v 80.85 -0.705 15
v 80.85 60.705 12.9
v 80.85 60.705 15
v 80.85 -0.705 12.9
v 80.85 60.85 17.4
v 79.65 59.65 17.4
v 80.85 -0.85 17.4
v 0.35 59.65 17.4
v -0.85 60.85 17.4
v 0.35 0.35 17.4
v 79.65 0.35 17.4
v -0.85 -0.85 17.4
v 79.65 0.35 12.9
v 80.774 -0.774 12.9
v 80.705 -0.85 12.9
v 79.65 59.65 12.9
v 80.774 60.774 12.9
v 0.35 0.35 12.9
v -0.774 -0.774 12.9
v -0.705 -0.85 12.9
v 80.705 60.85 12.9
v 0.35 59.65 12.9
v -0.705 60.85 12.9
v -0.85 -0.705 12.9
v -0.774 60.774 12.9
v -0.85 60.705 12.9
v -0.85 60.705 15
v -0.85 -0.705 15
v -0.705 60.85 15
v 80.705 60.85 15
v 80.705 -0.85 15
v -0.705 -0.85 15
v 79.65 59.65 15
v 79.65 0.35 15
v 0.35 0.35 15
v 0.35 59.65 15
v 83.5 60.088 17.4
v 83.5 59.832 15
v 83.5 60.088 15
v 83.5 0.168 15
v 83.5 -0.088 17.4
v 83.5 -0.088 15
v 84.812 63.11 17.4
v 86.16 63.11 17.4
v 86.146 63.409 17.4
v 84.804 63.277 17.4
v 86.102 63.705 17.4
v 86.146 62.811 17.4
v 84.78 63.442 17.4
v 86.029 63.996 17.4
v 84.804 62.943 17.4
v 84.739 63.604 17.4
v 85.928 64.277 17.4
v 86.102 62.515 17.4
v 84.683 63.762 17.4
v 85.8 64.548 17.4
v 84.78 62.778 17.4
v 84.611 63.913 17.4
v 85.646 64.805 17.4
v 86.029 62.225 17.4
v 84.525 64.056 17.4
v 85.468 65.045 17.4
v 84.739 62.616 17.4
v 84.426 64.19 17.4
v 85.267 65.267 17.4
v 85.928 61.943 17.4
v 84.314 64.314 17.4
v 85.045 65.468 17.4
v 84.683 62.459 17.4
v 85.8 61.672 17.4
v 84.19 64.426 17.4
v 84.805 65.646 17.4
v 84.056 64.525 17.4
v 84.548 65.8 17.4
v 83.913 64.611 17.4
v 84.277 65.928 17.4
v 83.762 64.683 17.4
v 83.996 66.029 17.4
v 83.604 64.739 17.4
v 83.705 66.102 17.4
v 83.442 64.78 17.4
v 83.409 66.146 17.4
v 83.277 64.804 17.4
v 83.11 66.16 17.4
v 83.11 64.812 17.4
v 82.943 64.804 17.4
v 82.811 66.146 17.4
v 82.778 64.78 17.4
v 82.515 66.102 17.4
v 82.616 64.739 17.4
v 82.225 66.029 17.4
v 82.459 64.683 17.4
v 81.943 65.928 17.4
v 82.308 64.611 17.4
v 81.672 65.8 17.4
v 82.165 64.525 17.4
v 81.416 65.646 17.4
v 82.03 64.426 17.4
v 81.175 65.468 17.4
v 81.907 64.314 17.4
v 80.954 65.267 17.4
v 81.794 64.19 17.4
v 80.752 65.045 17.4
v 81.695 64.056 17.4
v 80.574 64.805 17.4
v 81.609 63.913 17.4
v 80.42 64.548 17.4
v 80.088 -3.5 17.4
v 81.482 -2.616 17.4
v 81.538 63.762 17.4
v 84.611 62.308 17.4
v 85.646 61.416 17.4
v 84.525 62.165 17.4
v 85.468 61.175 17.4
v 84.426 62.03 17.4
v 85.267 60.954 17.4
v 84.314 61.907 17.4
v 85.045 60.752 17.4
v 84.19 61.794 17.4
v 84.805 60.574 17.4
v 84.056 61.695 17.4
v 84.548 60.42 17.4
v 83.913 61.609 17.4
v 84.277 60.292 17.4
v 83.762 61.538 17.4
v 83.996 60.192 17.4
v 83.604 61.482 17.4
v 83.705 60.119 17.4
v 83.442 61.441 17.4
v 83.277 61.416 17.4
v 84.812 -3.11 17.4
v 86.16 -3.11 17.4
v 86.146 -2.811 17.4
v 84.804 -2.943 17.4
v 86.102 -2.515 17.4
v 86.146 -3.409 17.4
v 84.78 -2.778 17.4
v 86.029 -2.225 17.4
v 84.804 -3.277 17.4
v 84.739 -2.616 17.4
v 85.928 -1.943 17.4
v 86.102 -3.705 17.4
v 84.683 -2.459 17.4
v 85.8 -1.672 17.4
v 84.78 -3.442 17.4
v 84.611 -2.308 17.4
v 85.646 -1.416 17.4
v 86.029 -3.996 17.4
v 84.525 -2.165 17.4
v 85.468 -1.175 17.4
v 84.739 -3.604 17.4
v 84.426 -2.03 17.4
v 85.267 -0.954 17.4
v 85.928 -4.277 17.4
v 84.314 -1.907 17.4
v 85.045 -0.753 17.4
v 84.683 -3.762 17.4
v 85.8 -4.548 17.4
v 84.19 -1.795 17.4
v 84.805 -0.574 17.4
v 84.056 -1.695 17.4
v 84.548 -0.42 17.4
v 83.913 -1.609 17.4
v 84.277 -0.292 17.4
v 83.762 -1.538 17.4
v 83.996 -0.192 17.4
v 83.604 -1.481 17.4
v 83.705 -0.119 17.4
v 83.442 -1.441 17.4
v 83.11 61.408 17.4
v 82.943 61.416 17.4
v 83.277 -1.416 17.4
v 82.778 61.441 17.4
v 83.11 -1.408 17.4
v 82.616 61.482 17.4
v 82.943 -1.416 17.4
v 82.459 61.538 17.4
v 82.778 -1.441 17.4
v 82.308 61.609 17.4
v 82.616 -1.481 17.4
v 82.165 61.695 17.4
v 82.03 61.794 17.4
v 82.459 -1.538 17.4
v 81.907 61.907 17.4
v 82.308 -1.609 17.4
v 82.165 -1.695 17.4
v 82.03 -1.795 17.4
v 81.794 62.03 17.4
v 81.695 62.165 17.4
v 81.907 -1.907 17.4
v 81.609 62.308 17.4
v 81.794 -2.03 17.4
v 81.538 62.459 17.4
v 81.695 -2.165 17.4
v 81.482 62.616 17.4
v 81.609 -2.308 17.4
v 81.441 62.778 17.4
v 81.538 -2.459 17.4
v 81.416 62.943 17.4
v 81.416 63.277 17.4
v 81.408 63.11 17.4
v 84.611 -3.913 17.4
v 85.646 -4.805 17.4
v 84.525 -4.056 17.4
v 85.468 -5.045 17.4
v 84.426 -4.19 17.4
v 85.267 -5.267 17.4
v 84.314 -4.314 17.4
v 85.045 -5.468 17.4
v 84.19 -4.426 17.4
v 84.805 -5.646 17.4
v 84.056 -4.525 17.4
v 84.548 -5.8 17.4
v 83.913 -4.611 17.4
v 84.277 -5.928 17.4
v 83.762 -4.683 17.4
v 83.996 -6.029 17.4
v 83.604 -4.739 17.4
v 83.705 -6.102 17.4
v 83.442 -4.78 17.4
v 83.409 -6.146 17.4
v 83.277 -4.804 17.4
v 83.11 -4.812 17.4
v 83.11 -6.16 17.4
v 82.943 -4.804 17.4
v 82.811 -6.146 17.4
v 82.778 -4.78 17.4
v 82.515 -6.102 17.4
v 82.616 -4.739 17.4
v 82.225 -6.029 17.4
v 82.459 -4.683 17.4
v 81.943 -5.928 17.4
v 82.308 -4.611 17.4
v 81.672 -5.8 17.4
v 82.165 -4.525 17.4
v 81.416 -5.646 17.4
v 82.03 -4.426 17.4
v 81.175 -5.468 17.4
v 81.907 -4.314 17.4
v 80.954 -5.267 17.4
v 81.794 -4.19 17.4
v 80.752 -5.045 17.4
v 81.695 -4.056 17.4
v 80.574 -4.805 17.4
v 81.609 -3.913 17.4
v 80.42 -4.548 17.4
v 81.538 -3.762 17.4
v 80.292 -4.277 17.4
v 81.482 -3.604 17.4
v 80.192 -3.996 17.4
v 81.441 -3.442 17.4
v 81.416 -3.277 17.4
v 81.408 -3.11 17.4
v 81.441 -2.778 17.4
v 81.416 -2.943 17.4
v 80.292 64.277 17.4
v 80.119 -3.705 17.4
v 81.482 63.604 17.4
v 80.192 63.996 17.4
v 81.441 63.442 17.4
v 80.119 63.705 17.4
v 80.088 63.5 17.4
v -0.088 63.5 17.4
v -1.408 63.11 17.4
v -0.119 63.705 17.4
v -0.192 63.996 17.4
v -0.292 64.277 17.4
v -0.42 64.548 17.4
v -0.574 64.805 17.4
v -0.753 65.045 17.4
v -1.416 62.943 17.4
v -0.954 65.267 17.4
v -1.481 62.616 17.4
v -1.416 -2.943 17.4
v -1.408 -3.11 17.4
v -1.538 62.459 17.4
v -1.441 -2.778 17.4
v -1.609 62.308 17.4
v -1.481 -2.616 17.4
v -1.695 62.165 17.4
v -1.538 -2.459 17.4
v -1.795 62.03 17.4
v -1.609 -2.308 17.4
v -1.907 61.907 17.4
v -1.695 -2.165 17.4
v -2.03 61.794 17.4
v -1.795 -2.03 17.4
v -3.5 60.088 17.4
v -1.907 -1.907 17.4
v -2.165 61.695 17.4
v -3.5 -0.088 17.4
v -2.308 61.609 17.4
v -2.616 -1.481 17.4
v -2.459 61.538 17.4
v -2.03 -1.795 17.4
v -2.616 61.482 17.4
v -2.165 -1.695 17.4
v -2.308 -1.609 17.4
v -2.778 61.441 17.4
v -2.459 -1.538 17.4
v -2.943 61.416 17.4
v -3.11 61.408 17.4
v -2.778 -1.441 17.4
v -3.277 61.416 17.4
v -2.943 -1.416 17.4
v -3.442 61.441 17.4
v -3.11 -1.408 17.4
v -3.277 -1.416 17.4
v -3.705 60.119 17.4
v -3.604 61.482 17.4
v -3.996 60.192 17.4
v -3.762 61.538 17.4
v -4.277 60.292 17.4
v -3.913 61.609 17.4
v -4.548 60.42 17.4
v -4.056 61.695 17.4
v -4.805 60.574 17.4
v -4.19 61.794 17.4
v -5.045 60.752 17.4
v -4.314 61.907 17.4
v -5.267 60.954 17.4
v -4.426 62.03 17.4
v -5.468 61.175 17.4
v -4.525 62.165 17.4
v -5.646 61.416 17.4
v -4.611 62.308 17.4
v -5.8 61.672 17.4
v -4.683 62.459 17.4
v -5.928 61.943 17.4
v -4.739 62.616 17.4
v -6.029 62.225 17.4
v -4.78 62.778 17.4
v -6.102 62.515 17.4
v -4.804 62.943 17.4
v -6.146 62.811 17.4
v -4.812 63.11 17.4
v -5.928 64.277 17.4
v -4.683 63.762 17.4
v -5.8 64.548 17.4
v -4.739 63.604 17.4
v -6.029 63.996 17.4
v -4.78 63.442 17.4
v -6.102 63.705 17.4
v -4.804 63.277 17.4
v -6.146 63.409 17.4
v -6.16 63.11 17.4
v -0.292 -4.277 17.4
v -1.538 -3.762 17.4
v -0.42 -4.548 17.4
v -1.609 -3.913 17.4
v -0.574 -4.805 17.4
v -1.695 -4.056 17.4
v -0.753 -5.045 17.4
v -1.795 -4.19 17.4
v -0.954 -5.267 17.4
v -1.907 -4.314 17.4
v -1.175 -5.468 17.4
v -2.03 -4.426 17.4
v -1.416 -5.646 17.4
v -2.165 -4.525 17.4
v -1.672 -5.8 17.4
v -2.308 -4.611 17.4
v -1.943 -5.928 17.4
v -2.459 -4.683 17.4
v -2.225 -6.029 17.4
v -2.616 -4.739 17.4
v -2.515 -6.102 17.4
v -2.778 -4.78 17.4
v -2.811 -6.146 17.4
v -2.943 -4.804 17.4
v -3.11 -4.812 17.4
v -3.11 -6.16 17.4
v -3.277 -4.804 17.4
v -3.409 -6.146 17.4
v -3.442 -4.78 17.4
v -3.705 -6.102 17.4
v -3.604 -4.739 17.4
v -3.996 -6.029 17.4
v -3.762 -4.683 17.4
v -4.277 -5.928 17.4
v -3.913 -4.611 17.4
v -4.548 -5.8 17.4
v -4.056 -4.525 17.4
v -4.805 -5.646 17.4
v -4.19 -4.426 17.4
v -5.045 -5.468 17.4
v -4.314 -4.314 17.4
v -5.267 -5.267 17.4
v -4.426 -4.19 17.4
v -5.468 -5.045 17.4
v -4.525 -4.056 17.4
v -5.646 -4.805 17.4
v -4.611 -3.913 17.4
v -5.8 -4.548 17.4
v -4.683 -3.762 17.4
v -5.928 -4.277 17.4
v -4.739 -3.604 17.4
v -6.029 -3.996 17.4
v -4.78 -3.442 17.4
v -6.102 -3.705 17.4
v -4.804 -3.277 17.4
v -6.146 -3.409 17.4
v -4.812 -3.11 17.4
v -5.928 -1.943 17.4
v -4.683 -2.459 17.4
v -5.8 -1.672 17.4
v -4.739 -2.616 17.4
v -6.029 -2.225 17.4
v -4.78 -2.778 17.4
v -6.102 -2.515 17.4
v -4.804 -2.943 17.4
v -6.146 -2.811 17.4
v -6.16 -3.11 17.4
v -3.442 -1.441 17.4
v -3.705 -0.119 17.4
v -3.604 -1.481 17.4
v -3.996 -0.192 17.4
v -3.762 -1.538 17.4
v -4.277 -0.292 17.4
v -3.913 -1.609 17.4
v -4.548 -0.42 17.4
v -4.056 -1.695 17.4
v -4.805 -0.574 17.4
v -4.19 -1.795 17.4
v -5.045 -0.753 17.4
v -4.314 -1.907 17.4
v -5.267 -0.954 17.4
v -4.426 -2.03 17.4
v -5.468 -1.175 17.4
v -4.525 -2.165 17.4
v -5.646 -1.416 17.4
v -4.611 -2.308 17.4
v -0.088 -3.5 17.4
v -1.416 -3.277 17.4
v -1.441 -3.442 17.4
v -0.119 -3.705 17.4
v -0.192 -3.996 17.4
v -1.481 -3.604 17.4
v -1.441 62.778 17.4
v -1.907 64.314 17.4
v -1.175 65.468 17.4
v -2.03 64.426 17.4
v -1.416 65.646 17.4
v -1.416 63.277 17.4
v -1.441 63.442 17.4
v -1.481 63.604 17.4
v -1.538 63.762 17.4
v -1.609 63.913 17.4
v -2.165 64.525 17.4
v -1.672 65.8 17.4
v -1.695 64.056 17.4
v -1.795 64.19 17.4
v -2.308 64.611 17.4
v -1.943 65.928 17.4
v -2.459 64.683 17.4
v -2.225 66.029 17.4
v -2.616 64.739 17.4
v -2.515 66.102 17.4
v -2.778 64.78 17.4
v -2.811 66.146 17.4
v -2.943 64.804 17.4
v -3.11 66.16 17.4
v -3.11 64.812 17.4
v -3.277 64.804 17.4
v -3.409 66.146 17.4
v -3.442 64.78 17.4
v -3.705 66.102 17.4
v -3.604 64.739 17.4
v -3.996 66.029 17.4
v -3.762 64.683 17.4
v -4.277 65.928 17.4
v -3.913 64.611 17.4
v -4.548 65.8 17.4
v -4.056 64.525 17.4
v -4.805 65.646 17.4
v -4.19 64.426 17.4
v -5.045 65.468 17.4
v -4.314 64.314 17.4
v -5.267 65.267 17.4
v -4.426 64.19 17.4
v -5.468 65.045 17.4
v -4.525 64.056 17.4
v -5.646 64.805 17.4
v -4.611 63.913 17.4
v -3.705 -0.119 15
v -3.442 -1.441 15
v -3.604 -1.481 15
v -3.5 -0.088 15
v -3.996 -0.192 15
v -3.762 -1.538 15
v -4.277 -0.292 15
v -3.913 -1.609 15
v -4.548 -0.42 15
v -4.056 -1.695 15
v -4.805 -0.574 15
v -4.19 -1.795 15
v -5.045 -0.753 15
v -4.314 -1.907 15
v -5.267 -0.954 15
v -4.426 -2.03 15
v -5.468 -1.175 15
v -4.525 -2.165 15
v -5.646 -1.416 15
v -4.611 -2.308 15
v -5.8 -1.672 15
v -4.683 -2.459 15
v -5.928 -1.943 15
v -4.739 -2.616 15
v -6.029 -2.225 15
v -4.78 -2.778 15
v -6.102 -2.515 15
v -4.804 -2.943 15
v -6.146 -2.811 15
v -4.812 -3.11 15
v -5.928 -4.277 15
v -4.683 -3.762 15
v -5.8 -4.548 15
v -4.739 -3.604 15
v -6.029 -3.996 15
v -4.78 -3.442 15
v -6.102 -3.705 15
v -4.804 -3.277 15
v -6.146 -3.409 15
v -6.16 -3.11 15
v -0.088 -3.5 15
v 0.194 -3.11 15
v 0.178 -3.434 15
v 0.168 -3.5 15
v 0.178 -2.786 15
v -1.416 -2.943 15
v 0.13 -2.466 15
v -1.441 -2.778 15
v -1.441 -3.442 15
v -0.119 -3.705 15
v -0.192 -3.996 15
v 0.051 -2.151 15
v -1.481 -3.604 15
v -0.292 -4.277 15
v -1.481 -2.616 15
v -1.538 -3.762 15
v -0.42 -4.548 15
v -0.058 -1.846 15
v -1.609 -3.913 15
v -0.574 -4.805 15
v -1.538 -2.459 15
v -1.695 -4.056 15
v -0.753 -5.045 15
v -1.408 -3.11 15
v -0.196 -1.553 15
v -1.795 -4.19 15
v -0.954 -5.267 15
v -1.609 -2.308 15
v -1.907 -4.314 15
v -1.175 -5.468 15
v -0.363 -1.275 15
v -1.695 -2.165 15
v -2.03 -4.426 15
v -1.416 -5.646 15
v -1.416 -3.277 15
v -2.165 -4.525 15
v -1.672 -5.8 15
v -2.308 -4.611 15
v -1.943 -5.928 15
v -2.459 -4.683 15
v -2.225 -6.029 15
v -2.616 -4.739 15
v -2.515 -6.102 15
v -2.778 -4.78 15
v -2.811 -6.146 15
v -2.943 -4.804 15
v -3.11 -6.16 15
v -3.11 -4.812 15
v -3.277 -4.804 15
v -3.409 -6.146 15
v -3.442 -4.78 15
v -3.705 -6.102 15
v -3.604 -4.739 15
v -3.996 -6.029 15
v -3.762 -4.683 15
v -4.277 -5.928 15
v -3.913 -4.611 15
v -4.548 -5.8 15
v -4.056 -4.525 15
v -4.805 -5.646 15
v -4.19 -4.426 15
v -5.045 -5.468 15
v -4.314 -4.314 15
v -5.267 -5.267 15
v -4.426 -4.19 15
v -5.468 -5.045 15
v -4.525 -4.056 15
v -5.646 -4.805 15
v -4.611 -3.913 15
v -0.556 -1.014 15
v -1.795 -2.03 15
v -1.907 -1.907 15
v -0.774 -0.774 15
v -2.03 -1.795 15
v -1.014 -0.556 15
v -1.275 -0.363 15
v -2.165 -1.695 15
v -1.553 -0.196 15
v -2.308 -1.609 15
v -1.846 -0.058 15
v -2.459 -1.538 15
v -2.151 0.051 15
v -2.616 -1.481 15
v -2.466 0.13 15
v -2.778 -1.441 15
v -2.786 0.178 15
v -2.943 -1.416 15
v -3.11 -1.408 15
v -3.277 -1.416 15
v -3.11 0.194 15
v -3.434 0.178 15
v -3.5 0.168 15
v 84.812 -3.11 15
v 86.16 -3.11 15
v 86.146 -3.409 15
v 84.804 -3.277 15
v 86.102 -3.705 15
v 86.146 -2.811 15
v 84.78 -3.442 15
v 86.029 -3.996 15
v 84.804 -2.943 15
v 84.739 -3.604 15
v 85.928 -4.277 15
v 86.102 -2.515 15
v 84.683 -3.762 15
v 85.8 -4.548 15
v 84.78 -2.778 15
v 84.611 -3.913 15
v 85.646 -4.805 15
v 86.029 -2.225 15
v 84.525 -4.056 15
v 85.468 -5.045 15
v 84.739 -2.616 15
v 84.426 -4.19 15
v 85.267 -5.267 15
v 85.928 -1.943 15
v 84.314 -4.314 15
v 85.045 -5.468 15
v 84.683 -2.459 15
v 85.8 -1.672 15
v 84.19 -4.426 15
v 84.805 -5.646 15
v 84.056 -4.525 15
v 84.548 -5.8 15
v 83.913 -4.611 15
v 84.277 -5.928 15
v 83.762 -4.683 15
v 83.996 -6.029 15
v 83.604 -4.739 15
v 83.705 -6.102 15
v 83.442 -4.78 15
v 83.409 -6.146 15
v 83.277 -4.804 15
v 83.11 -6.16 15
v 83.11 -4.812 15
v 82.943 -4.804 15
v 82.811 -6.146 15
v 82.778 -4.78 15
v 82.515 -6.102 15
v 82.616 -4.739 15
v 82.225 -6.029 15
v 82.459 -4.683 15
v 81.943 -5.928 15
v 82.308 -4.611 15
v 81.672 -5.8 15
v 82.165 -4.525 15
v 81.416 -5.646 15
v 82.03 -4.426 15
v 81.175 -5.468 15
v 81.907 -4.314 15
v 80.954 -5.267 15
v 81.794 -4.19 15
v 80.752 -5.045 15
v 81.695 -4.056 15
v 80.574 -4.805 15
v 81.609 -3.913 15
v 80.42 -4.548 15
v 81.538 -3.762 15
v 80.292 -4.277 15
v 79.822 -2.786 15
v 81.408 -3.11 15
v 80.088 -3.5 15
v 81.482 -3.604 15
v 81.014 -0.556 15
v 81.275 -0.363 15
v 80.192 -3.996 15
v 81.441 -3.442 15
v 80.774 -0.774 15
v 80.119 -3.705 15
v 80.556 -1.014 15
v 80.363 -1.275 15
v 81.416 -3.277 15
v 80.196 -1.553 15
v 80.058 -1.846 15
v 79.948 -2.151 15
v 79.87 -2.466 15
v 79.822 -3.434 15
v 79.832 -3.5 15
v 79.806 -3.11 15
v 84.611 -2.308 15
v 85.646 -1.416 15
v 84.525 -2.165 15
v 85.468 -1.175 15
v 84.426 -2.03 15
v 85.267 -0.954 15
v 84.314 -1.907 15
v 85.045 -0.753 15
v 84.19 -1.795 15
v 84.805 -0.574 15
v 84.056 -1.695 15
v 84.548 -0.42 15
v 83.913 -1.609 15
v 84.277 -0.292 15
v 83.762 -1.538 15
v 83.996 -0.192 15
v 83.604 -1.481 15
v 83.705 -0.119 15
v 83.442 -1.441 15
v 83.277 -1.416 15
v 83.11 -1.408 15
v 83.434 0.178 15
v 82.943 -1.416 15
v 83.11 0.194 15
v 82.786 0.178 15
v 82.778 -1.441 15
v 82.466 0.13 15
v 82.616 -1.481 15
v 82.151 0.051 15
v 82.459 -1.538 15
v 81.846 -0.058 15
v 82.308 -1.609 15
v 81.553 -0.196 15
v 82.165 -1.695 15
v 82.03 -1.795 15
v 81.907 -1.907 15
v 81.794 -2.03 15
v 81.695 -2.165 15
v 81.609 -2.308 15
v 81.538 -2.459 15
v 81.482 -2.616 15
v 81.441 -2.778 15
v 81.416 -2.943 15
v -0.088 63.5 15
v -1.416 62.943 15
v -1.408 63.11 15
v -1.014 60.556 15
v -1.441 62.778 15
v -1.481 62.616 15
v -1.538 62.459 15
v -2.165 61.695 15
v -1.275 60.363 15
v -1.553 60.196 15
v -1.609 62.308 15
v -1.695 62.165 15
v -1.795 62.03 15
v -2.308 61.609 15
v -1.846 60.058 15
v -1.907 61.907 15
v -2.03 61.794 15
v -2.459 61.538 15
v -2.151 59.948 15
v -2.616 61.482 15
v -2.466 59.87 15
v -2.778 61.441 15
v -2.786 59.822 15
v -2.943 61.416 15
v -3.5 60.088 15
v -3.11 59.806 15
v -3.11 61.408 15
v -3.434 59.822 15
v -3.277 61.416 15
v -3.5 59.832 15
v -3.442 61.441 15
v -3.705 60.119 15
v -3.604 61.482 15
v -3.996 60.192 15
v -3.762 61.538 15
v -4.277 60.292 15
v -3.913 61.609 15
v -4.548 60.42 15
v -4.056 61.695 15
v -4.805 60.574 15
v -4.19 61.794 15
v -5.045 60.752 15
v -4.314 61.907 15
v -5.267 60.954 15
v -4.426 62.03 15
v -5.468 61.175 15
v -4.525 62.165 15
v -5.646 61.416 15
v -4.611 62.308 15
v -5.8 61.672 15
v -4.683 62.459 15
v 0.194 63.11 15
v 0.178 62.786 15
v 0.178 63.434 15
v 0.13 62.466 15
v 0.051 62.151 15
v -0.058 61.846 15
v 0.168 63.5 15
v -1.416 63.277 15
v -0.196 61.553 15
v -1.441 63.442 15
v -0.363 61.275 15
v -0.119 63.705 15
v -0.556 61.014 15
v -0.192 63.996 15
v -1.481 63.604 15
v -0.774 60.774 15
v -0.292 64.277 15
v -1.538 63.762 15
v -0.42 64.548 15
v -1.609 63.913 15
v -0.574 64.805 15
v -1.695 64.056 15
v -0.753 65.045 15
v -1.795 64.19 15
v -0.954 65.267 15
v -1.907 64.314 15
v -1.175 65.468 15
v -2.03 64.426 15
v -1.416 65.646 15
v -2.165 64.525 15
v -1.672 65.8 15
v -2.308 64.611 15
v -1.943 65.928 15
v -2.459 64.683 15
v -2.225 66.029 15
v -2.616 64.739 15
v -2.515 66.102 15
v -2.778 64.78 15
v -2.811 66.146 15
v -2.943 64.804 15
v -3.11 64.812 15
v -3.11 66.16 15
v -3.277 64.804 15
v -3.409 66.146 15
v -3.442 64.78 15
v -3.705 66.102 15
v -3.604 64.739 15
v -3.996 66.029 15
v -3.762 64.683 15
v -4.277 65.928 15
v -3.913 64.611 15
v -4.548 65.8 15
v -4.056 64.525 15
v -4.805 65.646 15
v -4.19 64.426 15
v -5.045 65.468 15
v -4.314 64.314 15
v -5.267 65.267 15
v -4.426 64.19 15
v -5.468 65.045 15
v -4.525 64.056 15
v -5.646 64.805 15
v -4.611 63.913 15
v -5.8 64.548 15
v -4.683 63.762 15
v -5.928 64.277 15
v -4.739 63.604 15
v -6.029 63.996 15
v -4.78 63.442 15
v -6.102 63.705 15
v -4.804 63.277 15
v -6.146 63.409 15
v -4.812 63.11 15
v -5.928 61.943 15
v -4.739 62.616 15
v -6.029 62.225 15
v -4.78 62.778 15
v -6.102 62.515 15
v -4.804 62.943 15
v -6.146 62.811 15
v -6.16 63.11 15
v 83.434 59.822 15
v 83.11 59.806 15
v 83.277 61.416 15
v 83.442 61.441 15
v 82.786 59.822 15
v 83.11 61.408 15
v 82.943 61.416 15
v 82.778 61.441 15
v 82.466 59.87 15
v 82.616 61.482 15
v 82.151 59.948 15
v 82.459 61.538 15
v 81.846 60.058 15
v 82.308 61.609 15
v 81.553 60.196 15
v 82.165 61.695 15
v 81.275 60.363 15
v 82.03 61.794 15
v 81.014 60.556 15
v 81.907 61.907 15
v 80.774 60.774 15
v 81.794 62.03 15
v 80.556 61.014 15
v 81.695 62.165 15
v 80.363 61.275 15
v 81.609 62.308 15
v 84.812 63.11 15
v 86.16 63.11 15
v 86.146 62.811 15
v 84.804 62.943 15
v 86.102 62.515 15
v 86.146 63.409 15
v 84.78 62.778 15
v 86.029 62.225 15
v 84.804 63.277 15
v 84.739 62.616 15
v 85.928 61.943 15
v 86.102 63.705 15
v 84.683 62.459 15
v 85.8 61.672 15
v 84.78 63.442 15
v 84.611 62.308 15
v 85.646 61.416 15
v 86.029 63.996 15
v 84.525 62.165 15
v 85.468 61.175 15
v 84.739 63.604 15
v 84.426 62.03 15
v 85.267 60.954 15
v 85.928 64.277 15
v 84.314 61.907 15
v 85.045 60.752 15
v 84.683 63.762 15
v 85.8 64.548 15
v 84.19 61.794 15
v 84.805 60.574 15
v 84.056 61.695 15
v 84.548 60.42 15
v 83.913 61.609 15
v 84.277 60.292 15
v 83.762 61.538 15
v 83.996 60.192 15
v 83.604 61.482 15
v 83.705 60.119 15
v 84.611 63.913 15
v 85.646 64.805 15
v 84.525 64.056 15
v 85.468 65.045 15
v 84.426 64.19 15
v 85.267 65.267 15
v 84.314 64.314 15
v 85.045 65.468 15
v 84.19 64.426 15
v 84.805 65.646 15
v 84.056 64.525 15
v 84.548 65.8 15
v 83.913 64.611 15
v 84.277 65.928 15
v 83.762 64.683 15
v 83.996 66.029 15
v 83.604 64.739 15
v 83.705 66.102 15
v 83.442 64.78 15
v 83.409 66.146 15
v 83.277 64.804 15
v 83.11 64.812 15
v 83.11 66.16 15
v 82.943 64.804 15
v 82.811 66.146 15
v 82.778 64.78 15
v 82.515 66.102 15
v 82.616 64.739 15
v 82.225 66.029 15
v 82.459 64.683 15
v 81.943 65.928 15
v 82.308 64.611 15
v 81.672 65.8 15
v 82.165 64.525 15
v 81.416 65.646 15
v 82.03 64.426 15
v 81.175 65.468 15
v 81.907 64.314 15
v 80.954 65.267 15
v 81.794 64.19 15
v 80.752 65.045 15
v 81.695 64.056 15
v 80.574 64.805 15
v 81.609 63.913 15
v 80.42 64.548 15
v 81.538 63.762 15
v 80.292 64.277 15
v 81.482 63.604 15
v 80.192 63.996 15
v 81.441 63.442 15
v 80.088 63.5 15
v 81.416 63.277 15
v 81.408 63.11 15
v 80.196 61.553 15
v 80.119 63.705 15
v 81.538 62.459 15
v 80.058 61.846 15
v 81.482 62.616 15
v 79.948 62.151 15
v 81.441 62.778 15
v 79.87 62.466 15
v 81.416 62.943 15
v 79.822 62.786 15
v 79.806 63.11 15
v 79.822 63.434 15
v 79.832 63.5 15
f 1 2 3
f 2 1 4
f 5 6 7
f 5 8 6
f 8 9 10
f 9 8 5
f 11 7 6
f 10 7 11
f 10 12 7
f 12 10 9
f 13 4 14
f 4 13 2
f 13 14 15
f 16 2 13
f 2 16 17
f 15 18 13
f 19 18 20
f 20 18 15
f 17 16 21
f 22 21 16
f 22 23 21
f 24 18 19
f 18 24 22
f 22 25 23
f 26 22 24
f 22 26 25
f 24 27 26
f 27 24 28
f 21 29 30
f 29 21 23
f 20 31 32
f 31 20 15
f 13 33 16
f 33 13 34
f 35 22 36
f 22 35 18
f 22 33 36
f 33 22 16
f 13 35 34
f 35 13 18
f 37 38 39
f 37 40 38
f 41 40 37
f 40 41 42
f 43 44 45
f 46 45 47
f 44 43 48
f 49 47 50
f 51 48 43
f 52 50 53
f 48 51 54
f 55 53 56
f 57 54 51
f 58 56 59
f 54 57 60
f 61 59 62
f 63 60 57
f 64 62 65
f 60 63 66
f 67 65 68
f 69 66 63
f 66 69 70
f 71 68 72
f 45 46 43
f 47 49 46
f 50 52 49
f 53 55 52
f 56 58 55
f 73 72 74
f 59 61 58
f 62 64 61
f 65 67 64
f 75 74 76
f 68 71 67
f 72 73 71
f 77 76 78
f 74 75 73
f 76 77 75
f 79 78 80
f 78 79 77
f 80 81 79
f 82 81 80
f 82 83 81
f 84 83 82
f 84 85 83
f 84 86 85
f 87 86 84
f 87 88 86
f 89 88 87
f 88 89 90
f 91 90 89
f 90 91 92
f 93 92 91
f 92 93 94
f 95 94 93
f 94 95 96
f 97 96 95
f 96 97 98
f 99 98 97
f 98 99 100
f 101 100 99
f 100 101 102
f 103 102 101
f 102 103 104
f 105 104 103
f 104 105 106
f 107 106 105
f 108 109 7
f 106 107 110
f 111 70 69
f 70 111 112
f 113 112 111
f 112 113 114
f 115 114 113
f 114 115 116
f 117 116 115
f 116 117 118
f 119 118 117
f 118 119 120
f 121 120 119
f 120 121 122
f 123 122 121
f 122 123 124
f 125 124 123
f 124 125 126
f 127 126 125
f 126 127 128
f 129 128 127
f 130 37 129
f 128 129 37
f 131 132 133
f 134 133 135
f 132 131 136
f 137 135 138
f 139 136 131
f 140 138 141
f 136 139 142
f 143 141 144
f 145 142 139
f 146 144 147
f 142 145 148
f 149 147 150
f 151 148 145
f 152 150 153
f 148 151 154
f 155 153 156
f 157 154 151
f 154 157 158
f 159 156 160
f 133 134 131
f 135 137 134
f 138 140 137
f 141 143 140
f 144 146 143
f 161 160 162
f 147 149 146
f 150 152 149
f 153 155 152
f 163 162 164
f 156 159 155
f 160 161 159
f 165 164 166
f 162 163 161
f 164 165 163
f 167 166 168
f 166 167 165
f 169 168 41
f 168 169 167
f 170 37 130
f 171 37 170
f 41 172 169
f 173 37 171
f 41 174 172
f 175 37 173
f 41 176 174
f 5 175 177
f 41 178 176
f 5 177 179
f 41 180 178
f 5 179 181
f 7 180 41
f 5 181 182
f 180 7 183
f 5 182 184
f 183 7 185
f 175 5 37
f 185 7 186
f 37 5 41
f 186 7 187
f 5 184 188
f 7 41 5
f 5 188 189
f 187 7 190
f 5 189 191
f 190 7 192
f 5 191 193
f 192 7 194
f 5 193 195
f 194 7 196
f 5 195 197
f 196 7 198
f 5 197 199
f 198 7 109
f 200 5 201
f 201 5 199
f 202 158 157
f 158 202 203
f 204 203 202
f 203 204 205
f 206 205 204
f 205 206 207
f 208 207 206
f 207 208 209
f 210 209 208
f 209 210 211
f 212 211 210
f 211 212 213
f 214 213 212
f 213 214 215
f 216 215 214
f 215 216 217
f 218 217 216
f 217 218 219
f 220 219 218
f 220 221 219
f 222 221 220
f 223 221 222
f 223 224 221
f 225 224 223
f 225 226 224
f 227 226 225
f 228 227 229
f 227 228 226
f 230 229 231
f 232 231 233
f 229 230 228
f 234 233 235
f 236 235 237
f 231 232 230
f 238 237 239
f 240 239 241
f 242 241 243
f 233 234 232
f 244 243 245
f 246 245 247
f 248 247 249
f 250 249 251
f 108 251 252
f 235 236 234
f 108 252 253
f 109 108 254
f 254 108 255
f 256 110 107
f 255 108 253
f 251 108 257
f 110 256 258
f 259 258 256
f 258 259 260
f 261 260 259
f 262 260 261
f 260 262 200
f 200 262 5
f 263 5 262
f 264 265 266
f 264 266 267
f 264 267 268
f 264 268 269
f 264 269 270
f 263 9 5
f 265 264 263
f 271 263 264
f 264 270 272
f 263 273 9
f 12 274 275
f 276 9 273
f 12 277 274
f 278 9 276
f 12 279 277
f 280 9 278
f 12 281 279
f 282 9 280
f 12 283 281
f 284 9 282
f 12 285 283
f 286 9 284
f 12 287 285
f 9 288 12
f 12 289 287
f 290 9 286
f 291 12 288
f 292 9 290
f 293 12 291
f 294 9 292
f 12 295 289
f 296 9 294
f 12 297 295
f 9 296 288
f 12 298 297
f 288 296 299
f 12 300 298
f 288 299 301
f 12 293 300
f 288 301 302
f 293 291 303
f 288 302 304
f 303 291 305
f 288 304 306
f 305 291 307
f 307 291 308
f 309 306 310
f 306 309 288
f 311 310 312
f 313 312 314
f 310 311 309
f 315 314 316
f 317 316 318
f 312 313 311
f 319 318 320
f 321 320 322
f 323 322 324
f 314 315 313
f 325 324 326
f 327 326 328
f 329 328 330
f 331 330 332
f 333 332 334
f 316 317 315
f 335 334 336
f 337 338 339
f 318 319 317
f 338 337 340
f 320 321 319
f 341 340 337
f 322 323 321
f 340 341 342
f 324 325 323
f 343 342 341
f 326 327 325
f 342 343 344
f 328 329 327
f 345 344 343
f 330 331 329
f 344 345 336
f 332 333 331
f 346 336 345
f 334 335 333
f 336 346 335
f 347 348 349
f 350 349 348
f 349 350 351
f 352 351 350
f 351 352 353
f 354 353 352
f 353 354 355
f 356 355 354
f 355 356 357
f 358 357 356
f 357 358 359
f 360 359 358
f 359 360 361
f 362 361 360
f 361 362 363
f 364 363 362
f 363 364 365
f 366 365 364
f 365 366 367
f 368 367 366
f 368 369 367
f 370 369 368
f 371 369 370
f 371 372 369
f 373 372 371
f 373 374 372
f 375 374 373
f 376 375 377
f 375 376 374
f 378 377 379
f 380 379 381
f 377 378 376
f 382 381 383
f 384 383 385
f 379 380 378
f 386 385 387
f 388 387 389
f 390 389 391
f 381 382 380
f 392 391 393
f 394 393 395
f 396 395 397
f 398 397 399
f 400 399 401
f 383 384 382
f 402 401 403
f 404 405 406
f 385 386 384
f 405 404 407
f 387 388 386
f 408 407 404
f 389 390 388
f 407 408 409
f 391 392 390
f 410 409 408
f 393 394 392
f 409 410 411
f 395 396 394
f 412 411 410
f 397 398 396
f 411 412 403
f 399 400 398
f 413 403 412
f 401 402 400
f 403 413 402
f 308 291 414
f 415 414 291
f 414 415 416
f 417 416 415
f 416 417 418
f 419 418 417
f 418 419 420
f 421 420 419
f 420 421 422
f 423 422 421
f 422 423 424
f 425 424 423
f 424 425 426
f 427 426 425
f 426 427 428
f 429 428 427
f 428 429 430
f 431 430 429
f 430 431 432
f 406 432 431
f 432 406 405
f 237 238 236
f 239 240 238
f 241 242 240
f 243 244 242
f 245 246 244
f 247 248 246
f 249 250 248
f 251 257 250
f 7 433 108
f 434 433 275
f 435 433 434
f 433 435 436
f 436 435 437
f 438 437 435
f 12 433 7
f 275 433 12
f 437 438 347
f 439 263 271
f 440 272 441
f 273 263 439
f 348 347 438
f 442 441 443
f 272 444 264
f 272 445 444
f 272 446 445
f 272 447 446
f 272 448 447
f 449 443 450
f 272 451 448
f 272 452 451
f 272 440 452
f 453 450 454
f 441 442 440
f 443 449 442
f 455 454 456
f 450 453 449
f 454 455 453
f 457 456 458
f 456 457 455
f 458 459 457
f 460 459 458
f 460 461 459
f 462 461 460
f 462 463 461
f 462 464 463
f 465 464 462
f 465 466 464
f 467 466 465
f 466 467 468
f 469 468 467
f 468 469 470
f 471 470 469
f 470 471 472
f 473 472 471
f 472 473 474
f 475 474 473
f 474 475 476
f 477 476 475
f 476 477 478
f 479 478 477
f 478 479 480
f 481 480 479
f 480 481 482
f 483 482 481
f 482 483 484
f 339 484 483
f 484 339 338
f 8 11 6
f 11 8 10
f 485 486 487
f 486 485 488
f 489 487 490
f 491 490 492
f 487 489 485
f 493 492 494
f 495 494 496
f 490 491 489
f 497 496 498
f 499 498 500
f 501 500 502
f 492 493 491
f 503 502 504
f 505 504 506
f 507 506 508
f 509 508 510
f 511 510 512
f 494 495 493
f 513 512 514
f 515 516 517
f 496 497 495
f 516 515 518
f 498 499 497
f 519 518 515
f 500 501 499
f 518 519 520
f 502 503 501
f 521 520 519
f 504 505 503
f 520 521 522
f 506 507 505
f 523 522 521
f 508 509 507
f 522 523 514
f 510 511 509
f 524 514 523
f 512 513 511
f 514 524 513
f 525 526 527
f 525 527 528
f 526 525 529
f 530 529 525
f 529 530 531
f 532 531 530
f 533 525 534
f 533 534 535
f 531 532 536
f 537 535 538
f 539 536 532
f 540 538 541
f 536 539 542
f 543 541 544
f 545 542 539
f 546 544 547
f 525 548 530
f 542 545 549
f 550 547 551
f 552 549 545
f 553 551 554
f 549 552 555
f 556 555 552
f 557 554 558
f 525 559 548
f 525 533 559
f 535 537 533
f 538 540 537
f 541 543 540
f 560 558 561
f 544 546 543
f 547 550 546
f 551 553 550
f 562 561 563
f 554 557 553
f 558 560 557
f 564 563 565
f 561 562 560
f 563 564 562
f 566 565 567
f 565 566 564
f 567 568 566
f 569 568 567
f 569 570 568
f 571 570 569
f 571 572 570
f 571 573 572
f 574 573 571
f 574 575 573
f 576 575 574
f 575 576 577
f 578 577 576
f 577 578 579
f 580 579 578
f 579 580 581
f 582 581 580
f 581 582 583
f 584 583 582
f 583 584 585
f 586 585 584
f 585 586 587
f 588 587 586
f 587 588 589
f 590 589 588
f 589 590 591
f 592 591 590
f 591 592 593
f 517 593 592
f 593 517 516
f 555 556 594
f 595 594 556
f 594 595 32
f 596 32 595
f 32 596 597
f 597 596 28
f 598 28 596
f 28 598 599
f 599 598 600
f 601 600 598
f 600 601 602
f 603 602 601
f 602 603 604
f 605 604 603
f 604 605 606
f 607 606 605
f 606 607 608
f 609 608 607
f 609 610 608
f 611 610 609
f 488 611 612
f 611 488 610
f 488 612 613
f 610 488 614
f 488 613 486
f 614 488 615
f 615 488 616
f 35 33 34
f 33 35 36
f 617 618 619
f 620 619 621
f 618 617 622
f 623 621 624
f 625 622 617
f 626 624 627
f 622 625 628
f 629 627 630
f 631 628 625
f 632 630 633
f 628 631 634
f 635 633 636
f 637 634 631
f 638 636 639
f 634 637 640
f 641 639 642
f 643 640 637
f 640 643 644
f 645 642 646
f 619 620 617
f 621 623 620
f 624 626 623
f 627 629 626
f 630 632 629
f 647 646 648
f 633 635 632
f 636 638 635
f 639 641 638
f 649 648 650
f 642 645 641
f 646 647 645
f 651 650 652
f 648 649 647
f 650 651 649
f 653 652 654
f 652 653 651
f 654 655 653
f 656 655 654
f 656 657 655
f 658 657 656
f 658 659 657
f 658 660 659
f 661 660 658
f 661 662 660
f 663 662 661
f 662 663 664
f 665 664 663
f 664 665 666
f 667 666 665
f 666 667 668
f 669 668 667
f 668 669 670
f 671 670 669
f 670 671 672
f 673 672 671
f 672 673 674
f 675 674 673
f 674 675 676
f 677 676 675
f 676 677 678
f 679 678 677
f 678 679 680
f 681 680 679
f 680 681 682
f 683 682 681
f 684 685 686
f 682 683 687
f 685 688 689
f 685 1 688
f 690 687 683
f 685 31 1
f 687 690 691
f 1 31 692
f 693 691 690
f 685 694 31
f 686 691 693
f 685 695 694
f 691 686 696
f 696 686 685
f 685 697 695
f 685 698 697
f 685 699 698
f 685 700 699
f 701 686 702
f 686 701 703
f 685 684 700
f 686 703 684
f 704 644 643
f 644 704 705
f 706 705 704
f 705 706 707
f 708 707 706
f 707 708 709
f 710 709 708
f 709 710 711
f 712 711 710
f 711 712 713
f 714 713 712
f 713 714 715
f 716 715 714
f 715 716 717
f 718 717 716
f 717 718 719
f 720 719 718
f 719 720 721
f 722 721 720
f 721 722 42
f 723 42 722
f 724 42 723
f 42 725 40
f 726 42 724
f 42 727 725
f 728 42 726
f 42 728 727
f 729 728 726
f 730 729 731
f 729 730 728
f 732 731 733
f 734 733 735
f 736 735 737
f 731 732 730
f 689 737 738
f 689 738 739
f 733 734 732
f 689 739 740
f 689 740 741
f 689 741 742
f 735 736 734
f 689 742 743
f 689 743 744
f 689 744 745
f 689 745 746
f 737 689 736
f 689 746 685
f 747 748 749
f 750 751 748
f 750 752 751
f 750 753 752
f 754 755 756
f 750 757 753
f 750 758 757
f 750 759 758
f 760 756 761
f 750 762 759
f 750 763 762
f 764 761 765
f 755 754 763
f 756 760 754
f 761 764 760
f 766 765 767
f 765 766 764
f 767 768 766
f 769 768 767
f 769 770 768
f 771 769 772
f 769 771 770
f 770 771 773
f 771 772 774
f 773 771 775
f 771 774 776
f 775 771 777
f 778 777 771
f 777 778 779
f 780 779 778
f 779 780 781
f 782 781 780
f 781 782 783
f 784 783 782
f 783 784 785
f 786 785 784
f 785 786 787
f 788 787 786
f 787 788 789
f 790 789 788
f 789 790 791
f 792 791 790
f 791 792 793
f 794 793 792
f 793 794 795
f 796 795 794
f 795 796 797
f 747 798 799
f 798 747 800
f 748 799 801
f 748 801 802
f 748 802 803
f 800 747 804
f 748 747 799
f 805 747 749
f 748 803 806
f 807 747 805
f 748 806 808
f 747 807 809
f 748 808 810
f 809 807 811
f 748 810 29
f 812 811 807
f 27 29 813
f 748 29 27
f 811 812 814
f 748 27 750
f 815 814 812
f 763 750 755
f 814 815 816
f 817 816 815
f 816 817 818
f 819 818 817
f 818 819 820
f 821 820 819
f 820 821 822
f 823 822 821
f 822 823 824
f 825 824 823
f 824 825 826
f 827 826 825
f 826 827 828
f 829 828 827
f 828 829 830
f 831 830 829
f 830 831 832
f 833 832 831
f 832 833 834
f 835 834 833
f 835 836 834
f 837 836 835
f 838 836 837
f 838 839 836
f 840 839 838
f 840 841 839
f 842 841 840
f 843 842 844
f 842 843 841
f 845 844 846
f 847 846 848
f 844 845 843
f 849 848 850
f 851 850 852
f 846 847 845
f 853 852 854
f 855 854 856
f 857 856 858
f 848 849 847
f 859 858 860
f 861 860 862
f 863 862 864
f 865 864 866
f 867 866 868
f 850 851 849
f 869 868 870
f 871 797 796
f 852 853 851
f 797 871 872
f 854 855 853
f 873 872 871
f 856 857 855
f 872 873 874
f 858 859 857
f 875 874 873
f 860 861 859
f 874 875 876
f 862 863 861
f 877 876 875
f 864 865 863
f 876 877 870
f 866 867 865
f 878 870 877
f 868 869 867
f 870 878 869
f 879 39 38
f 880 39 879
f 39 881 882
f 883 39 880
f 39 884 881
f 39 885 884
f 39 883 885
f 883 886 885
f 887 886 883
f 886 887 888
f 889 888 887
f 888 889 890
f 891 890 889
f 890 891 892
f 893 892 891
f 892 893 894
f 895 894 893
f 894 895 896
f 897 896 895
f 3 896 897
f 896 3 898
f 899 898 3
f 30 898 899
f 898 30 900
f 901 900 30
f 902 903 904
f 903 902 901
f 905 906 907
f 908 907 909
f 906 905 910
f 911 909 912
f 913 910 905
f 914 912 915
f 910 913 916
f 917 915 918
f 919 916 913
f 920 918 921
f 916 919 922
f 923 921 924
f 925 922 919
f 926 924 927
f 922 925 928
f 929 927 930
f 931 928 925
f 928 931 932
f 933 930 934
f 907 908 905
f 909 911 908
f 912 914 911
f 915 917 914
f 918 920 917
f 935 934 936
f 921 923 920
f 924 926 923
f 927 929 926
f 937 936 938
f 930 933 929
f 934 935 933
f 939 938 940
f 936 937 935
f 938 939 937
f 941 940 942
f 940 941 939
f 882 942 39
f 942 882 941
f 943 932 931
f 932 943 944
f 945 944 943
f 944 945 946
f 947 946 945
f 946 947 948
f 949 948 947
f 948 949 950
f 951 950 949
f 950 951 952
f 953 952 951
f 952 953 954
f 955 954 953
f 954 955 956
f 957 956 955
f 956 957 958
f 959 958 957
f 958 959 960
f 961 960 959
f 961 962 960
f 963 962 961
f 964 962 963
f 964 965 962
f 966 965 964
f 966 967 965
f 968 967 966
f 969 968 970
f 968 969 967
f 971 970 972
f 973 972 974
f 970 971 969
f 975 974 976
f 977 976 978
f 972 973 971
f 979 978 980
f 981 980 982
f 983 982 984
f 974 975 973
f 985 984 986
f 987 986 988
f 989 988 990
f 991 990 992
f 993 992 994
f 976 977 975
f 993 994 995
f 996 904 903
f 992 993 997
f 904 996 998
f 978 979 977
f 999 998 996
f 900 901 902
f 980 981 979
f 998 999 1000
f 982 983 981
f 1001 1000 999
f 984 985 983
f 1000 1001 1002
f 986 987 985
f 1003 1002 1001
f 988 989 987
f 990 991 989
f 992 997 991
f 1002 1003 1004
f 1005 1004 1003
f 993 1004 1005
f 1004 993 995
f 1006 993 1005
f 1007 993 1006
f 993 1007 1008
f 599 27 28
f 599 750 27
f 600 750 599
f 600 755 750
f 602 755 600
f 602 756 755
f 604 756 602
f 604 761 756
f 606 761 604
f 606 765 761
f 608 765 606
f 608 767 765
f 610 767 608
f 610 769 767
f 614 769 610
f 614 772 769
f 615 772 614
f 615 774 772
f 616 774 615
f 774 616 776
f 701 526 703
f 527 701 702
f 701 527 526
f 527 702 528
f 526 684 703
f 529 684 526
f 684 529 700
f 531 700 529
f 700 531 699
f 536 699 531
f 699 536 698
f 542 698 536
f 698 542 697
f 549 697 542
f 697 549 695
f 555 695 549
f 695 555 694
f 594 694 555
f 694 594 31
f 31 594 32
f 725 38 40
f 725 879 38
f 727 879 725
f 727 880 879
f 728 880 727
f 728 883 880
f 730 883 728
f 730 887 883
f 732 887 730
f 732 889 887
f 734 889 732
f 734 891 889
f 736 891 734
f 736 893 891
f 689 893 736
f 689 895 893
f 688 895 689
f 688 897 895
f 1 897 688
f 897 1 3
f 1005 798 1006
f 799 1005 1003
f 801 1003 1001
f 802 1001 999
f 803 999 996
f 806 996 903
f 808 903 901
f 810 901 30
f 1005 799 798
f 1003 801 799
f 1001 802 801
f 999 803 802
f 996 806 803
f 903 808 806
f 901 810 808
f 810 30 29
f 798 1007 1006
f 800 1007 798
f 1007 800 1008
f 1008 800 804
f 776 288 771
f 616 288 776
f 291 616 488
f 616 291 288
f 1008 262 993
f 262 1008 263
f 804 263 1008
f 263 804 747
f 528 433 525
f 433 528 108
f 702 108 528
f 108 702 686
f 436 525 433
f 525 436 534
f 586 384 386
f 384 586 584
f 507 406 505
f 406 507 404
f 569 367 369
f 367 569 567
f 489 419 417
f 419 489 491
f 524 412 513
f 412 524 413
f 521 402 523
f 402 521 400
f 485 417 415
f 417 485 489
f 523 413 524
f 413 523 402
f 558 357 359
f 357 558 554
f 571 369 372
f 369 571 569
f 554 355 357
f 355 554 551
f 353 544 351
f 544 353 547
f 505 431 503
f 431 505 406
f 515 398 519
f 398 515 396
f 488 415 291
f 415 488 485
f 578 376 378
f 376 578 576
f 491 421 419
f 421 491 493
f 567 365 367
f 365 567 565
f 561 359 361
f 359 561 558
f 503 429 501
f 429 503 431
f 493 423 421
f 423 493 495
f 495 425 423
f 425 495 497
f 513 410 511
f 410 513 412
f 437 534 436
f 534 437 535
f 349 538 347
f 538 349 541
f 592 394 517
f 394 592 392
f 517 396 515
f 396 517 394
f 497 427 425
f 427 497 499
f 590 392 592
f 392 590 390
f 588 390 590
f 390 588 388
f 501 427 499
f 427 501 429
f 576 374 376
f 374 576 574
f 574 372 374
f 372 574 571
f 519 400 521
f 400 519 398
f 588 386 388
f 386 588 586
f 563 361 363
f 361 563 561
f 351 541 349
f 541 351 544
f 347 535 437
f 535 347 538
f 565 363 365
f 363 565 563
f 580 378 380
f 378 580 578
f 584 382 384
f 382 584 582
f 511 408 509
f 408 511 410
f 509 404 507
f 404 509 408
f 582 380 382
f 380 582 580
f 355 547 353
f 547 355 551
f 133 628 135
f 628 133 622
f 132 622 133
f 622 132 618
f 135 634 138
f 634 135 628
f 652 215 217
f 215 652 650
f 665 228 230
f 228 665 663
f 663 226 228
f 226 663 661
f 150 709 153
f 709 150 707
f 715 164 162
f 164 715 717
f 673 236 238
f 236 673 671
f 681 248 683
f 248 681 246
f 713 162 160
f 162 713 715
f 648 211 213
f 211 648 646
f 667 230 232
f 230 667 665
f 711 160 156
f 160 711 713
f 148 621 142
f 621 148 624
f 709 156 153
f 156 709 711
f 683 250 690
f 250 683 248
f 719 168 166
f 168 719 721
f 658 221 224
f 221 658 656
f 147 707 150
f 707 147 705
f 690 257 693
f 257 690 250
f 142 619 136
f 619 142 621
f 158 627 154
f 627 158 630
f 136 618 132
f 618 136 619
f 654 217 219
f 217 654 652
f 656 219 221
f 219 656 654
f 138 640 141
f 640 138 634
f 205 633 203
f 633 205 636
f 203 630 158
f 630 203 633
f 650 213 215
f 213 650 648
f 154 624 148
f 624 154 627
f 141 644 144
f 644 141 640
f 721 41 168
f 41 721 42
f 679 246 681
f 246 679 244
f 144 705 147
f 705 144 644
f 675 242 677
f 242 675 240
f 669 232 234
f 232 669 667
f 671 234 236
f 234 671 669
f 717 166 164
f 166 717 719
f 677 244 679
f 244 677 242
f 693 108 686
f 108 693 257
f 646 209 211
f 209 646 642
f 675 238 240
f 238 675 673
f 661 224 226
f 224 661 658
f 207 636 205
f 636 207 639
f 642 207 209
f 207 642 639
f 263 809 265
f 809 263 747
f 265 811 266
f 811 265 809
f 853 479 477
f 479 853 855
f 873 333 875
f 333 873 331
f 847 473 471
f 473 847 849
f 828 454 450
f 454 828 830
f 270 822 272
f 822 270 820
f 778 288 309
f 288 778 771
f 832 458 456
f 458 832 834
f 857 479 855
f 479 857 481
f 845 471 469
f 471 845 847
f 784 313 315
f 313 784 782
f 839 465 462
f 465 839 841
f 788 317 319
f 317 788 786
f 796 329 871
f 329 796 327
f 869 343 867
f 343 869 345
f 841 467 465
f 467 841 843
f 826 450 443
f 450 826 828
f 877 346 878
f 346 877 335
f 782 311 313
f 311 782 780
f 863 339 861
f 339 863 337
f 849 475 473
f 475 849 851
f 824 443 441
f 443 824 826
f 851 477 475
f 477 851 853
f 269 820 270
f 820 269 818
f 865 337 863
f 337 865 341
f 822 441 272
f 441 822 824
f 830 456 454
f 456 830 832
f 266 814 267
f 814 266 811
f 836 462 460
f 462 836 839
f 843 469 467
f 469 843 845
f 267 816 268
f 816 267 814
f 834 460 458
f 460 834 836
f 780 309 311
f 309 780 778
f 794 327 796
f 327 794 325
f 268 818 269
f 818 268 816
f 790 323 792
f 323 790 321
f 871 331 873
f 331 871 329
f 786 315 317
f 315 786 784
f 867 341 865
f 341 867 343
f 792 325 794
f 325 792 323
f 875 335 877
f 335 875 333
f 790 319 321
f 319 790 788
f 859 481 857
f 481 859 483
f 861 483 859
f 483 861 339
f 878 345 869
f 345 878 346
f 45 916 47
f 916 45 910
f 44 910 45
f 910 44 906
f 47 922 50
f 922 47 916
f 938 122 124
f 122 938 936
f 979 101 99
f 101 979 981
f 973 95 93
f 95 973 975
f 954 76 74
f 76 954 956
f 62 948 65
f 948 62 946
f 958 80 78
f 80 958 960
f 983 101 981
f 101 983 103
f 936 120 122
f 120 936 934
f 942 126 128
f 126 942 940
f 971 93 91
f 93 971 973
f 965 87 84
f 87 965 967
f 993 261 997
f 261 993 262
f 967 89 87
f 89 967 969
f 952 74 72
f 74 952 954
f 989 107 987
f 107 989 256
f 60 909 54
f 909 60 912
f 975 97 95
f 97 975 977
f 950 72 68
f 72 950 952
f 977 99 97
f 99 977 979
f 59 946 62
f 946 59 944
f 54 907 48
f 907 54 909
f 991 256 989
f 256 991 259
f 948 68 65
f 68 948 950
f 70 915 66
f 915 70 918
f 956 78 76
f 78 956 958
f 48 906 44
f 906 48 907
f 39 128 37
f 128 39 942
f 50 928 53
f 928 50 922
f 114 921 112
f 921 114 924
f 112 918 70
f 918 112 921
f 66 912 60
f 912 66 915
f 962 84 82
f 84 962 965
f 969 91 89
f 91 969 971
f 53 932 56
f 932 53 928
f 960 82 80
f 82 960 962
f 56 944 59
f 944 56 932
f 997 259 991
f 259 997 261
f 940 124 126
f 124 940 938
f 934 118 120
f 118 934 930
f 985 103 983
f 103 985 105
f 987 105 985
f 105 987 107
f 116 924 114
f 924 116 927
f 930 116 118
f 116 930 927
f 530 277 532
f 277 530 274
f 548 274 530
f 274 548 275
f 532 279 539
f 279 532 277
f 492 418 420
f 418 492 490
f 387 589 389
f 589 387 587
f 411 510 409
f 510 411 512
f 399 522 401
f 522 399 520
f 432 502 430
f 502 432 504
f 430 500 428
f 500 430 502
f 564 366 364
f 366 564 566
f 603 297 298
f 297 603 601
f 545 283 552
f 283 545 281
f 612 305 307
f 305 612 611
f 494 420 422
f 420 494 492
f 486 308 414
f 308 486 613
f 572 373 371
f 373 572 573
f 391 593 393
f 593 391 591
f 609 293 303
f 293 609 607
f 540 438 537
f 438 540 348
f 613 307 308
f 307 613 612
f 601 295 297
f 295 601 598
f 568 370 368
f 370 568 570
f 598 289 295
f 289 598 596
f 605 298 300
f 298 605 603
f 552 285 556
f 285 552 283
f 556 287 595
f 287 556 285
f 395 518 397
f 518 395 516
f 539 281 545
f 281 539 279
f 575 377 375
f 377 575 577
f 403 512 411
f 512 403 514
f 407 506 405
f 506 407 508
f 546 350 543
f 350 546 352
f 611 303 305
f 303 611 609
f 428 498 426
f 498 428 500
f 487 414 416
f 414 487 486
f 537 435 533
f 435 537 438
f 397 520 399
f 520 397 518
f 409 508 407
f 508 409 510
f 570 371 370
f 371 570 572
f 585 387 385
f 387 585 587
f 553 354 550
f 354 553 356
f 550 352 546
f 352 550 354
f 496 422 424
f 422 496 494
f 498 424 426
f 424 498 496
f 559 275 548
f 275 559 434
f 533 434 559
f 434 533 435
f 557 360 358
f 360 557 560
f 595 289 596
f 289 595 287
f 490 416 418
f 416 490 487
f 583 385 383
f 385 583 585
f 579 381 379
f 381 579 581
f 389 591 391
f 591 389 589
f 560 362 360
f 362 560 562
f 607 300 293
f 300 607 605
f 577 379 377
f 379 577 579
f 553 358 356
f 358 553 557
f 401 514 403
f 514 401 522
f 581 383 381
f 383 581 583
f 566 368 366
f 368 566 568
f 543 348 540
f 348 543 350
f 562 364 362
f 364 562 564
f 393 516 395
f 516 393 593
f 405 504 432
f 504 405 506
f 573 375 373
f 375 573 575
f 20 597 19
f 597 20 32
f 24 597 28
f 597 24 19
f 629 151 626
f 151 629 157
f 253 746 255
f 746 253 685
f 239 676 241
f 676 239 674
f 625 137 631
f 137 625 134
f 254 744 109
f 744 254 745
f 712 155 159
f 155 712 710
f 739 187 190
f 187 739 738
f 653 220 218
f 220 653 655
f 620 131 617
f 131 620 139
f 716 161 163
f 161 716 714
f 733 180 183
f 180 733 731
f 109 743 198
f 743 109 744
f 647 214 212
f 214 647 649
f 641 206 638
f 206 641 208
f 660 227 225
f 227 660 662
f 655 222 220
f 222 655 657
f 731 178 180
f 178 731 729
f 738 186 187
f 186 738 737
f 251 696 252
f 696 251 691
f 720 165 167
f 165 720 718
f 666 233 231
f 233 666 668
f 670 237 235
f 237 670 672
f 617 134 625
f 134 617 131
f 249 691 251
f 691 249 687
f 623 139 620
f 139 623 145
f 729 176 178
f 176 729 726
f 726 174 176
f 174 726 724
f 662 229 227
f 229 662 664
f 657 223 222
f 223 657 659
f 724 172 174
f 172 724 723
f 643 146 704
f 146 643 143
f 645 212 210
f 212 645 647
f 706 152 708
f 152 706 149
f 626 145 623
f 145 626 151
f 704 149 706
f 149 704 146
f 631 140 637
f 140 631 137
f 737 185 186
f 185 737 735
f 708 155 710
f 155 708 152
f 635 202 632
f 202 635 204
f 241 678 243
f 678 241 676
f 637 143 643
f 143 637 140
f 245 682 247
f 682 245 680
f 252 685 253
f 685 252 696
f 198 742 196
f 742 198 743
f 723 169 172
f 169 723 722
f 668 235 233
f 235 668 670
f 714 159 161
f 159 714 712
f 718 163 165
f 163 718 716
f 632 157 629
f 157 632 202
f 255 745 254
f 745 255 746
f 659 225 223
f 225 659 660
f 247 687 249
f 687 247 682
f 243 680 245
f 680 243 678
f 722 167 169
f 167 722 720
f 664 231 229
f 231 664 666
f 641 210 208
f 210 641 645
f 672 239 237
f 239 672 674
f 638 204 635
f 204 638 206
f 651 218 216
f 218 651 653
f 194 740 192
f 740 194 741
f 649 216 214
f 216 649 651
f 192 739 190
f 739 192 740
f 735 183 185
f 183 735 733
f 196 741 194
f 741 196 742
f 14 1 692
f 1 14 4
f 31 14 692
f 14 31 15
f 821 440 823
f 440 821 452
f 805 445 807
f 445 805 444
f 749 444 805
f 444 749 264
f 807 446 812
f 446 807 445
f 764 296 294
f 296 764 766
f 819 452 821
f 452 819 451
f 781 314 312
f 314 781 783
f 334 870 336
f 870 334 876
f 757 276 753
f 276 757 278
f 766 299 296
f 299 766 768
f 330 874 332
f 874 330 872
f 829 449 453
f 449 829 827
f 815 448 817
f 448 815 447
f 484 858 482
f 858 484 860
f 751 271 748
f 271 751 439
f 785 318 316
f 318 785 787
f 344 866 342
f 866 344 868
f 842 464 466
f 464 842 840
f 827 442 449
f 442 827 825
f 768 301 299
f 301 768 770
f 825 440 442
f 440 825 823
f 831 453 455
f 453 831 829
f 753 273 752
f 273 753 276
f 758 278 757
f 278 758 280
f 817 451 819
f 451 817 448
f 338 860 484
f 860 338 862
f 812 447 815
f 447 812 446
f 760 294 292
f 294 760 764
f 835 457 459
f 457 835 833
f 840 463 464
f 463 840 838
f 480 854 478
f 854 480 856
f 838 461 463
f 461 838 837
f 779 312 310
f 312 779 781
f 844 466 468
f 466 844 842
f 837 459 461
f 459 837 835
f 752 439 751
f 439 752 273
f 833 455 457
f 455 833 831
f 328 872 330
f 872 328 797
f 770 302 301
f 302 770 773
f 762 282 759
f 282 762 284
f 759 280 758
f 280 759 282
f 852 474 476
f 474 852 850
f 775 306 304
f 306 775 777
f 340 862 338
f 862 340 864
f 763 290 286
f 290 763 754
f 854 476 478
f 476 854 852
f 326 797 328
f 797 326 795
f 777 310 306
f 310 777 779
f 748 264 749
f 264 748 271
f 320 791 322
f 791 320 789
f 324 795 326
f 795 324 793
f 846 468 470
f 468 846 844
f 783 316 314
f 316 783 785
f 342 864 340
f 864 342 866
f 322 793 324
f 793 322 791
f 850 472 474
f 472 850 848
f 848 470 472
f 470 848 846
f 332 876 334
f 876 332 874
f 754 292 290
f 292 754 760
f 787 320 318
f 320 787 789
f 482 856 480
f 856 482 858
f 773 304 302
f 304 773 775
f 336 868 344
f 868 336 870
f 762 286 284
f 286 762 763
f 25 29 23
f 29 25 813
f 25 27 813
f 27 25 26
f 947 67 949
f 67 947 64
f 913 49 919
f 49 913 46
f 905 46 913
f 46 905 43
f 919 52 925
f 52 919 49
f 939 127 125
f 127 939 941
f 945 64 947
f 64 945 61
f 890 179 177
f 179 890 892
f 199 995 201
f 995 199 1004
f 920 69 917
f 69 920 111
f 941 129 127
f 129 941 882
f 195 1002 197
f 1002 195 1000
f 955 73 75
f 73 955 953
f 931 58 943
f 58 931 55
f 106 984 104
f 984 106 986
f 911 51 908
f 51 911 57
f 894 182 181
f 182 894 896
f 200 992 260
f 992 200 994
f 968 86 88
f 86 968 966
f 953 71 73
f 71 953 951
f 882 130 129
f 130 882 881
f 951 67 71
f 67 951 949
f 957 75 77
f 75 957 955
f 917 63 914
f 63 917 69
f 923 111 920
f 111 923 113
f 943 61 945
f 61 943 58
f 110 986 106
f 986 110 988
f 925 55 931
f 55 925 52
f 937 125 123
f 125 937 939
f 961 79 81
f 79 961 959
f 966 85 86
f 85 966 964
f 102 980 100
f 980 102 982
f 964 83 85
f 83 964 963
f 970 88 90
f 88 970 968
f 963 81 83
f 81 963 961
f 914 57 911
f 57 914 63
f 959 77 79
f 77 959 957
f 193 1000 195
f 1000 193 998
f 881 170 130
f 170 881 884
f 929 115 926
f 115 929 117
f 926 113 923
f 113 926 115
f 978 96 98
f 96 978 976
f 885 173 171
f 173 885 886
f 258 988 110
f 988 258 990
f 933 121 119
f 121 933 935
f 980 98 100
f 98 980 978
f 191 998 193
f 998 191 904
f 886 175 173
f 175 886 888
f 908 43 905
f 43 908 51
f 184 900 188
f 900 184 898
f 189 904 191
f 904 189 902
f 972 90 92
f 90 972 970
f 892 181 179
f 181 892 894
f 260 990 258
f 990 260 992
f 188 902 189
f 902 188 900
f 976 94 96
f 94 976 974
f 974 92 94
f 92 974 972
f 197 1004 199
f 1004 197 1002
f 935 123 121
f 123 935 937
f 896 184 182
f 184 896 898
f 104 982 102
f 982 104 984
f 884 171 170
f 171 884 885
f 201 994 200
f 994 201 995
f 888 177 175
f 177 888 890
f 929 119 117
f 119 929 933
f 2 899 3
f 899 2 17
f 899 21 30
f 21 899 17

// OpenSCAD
// body lid
difference() {
  union() {
    // body lid (lid_plate)
    multmatrix([[1, 0, 0, 40], [0, 1, 0, 30], [0, 0, 1, 15], [0, 0, 0, 1]]) translate([-43.5, -33.5, 0]) cube([87, 67, 2.4]);
    // add lid_lip (lip)
    multmatrix([[1, 0, 0, 40], [0, 1, 0, 30], [0, 0, 1, 12.9], [0, 0, 0, 1]]) difference() { translate([-40.85, -30.85, 0]) cube([81.7, 61.7, 4.5]); translate([0, 0, -1]) translate([-39.65, -29.65, 0]) cube([79.3, 59.3, 6.5]); }
    // add boss_1_pad (pad)
    multmatrix([[1, 0, 0, -3.110229], [0, 1, 0, -3.110229], [0, 0, 1, 15], [0, 0, 0, 1]]) cylinder(h=2.4, d=6.1, $fn=64);
    // add boss_2_pad (pad)
    multmatrix([[1, 0, 0, 83.110229], [0, 1, 0, -3.110229], [0, 0, 1, 15], [0, 0, 0, 1]]) cylinder(h=2.4, d=6.1, $fn=64);
    // add boss_3_pad (pad)
    multmatrix([[1, 0, 0, -3.110229], [0, 1, 0, 63.110229], [0, 0, 1, 15], [0, 0, 0, 1]]) cylinder(h=2.4, d=6.1, $fn=64);
    // add boss_4_pad (pad)
    multmatrix([[1, 0, 0, 83.110229], [0, 1, 0, 63.110229], [0, 0, 1, 15], [0, 0, 0, 1]]) cylinder(h=2.4, d=6.1, $fn=64);
  }
  // cut boss_1_lid_hole (screw_hole)
  multmatrix([[1, 0, 0, -3.110229], [0, 1, 0, -3.110229], [0, 0, 1, 14], [0, 0, 0, 1]]) cylinder(h=4.4, d=3.4041, $fn=64);
  // cut boss_1_lip_notch (lip_notch)
  multmatrix([[1, 0, 0, -3.110229], [0, 1, 0, -3.110229], [0, 0, 1, 11.9], [0, 0, 0, 1]]) cylinder(h=3.1, d=6.60796, $fn=64);
  // cut boss_2_lid_hole (screw_hole)
  multmatrix([[1, 0, 0, 83.110229], [0, 1, 0, -3.110229], [0, 0, 1, 14], [0, 0, 0, 1]]) cylinder(h=4.4, d=3.4041, $fn=64);
  // cut boss_2_lip_notch (lip_notch)
  multmatrix([[1, 0, 0, 83.110229], [0, 1, 0, -3.110229], [0, 0, 1, 11.9], [0, 0, 0, 1]]) cylinder(h=3.1, d=6.60796, $fn=64);
  // cut boss_3_lid_hole (screw_hole)
  multmatrix([[1, 0, 0, -3.110229], [0, 1, 0, 63.110229], [0, 0, 1, 14], [0, 0, 0, 1]]) cylinder(h=4.4, d=3.4041, $fn=64);
  // cut boss_3_lip_notch (lip_notch)
  multmatrix([[1, 0, 0, -3.110229], [0, 1, 0, 63.110229], [0, 0, 1, 11.9], [0, 0, 0, 1]]) cylinder(h=3.1, d=6.60796, $fn=64);
  // cut boss_4_lid_hole (screw_hole)
  multmatrix([[1, 0, 0, 83.110229], [0, 1, 0, 63.110229], [0, 0, 1, 14], [0, 0, 0, 1]]) cylinder(h=4.4, d=3.4041, $fn=64);
  // cut boss_4_lip_notch (lip_notch)
  multmatrix([[1, 0, 0, 83.110229], [0, 1, 0, 63.110229], [0, 0, 1, 11.9], [0, 0, 0, 1]]) cylinder(h=3.1, d=6.60796, $fn=64);
}
